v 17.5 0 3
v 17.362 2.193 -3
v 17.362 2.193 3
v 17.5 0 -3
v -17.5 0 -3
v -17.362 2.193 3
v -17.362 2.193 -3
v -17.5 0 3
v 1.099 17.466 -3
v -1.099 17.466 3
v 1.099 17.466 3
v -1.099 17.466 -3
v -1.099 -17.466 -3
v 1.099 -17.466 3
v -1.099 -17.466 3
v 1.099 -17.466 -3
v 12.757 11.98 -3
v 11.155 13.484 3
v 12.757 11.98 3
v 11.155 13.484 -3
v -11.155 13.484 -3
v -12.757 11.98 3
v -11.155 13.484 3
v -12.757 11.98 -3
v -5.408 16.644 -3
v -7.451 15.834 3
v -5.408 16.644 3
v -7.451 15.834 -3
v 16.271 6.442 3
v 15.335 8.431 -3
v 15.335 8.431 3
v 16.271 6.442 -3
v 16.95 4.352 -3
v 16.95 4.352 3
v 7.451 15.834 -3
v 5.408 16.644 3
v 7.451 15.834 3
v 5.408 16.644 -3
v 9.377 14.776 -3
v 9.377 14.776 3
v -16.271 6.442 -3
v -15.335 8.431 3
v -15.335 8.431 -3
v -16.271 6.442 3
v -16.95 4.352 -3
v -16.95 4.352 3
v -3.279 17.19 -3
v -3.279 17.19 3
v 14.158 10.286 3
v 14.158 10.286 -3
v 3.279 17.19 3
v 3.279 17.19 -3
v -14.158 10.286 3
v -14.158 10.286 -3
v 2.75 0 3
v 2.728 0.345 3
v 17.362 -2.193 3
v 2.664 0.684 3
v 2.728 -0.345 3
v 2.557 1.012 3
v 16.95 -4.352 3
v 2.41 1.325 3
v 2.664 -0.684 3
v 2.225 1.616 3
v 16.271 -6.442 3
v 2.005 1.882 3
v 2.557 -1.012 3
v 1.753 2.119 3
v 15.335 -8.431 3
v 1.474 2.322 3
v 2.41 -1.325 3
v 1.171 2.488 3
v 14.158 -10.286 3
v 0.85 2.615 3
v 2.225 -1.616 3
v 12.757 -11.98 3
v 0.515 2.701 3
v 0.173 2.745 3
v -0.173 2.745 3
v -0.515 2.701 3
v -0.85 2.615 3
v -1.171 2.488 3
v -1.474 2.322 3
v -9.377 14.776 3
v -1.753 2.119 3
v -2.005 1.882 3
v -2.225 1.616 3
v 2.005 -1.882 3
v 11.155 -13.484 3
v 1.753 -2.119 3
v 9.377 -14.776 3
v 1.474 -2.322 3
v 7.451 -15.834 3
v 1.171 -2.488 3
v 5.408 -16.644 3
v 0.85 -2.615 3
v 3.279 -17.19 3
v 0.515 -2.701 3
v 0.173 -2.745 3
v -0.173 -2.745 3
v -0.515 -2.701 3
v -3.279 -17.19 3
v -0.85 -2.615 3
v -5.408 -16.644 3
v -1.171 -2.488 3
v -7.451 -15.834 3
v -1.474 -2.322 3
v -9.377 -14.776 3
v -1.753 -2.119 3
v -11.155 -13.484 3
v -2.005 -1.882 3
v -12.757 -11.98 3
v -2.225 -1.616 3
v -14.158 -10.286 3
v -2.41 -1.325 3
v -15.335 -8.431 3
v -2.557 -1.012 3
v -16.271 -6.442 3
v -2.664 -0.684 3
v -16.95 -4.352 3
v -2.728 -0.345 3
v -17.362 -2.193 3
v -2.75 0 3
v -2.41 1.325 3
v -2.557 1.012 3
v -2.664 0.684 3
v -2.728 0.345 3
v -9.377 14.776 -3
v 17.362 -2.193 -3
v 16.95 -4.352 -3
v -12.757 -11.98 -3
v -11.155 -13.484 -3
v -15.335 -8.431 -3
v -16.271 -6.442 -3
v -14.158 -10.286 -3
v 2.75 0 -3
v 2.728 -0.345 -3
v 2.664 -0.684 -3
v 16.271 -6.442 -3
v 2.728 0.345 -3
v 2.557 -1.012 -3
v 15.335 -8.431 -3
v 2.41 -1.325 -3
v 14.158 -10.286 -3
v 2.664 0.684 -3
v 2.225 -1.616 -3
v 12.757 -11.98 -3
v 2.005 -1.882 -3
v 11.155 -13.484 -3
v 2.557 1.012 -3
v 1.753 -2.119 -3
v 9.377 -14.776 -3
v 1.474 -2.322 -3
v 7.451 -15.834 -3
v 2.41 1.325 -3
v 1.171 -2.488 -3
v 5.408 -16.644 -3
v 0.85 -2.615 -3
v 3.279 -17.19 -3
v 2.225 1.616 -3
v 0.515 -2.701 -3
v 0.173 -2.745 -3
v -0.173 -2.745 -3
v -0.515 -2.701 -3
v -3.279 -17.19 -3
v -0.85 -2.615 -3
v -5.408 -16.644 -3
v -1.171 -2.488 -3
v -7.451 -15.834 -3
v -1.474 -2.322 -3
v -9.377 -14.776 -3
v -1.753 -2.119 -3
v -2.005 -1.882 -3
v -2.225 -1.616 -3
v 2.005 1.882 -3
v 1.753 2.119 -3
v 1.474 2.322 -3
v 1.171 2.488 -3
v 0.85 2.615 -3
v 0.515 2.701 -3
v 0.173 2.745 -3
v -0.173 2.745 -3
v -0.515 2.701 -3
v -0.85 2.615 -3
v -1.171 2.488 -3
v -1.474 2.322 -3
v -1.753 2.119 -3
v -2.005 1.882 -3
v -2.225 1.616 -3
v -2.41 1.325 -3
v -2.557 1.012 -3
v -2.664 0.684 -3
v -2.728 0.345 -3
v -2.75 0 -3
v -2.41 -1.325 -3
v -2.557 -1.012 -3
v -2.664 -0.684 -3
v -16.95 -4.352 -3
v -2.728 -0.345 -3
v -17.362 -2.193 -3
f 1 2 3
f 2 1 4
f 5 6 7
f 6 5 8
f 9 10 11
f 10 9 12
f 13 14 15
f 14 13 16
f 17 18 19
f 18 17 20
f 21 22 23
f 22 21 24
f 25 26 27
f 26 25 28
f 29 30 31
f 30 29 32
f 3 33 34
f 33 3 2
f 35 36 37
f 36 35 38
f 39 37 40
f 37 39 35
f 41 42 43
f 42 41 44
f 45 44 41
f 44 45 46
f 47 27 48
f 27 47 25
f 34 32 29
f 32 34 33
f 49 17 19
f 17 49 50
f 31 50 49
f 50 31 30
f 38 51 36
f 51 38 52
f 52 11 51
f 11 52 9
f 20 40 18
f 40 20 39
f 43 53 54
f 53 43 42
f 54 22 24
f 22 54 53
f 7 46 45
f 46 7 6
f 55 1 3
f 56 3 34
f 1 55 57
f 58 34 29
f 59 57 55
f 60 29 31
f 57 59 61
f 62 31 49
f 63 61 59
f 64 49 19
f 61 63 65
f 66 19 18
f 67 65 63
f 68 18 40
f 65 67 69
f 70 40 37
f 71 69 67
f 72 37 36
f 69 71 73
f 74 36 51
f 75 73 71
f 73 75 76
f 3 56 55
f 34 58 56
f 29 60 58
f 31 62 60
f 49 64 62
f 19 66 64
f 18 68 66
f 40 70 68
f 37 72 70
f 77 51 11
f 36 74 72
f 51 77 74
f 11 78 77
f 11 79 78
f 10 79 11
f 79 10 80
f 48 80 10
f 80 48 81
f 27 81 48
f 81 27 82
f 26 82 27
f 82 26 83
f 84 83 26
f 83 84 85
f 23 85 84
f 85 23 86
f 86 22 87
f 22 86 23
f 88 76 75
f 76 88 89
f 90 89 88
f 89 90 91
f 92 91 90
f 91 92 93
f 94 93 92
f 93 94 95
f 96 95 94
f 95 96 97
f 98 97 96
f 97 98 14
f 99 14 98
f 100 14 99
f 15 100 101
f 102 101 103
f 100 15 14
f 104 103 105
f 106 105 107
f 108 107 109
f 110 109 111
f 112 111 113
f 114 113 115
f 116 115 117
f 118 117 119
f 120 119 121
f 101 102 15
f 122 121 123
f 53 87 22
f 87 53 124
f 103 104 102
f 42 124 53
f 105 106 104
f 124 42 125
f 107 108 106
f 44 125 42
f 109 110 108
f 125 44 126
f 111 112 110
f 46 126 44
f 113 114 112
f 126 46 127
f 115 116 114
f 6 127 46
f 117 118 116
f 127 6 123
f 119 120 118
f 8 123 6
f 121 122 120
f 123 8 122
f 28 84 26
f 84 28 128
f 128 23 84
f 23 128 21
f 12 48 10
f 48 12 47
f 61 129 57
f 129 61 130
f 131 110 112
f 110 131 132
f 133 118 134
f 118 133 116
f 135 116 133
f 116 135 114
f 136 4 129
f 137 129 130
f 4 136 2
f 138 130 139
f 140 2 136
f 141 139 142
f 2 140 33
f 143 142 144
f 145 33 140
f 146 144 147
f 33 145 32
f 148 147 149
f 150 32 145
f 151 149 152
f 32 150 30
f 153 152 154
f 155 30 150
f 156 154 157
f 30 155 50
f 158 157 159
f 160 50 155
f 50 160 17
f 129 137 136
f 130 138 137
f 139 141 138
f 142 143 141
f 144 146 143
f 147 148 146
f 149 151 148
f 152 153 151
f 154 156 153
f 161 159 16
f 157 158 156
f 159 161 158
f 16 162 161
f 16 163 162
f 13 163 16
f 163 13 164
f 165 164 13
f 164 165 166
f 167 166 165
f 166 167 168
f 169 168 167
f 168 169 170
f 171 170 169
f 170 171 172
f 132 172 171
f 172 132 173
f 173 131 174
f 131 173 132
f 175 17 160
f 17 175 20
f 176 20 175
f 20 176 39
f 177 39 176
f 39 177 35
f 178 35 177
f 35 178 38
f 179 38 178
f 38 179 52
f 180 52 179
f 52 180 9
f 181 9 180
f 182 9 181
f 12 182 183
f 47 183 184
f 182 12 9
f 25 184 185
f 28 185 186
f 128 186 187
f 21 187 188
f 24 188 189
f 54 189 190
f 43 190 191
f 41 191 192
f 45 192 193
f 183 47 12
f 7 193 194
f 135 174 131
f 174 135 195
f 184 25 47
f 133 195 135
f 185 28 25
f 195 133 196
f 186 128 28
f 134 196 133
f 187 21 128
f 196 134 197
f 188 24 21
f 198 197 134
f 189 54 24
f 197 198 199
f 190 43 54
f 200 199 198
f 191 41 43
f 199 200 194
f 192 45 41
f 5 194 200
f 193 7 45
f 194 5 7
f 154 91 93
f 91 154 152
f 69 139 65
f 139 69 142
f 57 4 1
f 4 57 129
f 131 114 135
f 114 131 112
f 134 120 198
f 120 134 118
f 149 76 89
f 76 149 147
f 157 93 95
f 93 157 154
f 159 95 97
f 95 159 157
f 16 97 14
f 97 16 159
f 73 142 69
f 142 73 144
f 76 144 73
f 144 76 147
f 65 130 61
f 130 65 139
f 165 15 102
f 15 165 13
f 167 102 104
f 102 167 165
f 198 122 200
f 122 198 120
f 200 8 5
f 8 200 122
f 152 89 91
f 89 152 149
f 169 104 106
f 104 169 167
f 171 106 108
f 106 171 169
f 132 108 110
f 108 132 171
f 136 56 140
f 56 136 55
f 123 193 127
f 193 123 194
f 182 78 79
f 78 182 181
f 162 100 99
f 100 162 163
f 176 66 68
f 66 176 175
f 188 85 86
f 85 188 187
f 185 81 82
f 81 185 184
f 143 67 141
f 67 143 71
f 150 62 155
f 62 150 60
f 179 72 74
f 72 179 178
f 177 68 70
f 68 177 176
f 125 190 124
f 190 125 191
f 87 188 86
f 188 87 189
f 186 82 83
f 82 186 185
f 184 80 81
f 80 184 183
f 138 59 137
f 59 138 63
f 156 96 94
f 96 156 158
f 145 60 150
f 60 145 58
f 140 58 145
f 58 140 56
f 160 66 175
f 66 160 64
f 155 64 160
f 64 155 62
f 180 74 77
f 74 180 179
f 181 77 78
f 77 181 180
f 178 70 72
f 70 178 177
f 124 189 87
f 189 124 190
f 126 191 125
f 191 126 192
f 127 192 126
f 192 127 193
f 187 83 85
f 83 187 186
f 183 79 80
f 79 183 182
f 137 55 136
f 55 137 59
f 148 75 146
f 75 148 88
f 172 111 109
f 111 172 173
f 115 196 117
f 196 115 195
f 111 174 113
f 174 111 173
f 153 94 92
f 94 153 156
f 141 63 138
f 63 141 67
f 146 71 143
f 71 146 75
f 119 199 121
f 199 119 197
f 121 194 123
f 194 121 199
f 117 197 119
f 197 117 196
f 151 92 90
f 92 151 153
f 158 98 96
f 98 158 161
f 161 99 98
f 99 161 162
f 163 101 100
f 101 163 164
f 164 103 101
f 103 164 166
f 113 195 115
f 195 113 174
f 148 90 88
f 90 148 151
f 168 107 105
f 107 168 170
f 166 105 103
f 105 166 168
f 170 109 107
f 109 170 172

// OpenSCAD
$fn = 50;


difference() {
	union() {
		translate(v = [0, 0, -3.0000000000]) {
			cylinder(h = 6, r = 17.5000000000);
		}
	}
	union() {
		translate(v = [0, 0, -100.0000000000]) {
			cylinder(h = 200, r = 2.7500000000);
		}
	}
}
